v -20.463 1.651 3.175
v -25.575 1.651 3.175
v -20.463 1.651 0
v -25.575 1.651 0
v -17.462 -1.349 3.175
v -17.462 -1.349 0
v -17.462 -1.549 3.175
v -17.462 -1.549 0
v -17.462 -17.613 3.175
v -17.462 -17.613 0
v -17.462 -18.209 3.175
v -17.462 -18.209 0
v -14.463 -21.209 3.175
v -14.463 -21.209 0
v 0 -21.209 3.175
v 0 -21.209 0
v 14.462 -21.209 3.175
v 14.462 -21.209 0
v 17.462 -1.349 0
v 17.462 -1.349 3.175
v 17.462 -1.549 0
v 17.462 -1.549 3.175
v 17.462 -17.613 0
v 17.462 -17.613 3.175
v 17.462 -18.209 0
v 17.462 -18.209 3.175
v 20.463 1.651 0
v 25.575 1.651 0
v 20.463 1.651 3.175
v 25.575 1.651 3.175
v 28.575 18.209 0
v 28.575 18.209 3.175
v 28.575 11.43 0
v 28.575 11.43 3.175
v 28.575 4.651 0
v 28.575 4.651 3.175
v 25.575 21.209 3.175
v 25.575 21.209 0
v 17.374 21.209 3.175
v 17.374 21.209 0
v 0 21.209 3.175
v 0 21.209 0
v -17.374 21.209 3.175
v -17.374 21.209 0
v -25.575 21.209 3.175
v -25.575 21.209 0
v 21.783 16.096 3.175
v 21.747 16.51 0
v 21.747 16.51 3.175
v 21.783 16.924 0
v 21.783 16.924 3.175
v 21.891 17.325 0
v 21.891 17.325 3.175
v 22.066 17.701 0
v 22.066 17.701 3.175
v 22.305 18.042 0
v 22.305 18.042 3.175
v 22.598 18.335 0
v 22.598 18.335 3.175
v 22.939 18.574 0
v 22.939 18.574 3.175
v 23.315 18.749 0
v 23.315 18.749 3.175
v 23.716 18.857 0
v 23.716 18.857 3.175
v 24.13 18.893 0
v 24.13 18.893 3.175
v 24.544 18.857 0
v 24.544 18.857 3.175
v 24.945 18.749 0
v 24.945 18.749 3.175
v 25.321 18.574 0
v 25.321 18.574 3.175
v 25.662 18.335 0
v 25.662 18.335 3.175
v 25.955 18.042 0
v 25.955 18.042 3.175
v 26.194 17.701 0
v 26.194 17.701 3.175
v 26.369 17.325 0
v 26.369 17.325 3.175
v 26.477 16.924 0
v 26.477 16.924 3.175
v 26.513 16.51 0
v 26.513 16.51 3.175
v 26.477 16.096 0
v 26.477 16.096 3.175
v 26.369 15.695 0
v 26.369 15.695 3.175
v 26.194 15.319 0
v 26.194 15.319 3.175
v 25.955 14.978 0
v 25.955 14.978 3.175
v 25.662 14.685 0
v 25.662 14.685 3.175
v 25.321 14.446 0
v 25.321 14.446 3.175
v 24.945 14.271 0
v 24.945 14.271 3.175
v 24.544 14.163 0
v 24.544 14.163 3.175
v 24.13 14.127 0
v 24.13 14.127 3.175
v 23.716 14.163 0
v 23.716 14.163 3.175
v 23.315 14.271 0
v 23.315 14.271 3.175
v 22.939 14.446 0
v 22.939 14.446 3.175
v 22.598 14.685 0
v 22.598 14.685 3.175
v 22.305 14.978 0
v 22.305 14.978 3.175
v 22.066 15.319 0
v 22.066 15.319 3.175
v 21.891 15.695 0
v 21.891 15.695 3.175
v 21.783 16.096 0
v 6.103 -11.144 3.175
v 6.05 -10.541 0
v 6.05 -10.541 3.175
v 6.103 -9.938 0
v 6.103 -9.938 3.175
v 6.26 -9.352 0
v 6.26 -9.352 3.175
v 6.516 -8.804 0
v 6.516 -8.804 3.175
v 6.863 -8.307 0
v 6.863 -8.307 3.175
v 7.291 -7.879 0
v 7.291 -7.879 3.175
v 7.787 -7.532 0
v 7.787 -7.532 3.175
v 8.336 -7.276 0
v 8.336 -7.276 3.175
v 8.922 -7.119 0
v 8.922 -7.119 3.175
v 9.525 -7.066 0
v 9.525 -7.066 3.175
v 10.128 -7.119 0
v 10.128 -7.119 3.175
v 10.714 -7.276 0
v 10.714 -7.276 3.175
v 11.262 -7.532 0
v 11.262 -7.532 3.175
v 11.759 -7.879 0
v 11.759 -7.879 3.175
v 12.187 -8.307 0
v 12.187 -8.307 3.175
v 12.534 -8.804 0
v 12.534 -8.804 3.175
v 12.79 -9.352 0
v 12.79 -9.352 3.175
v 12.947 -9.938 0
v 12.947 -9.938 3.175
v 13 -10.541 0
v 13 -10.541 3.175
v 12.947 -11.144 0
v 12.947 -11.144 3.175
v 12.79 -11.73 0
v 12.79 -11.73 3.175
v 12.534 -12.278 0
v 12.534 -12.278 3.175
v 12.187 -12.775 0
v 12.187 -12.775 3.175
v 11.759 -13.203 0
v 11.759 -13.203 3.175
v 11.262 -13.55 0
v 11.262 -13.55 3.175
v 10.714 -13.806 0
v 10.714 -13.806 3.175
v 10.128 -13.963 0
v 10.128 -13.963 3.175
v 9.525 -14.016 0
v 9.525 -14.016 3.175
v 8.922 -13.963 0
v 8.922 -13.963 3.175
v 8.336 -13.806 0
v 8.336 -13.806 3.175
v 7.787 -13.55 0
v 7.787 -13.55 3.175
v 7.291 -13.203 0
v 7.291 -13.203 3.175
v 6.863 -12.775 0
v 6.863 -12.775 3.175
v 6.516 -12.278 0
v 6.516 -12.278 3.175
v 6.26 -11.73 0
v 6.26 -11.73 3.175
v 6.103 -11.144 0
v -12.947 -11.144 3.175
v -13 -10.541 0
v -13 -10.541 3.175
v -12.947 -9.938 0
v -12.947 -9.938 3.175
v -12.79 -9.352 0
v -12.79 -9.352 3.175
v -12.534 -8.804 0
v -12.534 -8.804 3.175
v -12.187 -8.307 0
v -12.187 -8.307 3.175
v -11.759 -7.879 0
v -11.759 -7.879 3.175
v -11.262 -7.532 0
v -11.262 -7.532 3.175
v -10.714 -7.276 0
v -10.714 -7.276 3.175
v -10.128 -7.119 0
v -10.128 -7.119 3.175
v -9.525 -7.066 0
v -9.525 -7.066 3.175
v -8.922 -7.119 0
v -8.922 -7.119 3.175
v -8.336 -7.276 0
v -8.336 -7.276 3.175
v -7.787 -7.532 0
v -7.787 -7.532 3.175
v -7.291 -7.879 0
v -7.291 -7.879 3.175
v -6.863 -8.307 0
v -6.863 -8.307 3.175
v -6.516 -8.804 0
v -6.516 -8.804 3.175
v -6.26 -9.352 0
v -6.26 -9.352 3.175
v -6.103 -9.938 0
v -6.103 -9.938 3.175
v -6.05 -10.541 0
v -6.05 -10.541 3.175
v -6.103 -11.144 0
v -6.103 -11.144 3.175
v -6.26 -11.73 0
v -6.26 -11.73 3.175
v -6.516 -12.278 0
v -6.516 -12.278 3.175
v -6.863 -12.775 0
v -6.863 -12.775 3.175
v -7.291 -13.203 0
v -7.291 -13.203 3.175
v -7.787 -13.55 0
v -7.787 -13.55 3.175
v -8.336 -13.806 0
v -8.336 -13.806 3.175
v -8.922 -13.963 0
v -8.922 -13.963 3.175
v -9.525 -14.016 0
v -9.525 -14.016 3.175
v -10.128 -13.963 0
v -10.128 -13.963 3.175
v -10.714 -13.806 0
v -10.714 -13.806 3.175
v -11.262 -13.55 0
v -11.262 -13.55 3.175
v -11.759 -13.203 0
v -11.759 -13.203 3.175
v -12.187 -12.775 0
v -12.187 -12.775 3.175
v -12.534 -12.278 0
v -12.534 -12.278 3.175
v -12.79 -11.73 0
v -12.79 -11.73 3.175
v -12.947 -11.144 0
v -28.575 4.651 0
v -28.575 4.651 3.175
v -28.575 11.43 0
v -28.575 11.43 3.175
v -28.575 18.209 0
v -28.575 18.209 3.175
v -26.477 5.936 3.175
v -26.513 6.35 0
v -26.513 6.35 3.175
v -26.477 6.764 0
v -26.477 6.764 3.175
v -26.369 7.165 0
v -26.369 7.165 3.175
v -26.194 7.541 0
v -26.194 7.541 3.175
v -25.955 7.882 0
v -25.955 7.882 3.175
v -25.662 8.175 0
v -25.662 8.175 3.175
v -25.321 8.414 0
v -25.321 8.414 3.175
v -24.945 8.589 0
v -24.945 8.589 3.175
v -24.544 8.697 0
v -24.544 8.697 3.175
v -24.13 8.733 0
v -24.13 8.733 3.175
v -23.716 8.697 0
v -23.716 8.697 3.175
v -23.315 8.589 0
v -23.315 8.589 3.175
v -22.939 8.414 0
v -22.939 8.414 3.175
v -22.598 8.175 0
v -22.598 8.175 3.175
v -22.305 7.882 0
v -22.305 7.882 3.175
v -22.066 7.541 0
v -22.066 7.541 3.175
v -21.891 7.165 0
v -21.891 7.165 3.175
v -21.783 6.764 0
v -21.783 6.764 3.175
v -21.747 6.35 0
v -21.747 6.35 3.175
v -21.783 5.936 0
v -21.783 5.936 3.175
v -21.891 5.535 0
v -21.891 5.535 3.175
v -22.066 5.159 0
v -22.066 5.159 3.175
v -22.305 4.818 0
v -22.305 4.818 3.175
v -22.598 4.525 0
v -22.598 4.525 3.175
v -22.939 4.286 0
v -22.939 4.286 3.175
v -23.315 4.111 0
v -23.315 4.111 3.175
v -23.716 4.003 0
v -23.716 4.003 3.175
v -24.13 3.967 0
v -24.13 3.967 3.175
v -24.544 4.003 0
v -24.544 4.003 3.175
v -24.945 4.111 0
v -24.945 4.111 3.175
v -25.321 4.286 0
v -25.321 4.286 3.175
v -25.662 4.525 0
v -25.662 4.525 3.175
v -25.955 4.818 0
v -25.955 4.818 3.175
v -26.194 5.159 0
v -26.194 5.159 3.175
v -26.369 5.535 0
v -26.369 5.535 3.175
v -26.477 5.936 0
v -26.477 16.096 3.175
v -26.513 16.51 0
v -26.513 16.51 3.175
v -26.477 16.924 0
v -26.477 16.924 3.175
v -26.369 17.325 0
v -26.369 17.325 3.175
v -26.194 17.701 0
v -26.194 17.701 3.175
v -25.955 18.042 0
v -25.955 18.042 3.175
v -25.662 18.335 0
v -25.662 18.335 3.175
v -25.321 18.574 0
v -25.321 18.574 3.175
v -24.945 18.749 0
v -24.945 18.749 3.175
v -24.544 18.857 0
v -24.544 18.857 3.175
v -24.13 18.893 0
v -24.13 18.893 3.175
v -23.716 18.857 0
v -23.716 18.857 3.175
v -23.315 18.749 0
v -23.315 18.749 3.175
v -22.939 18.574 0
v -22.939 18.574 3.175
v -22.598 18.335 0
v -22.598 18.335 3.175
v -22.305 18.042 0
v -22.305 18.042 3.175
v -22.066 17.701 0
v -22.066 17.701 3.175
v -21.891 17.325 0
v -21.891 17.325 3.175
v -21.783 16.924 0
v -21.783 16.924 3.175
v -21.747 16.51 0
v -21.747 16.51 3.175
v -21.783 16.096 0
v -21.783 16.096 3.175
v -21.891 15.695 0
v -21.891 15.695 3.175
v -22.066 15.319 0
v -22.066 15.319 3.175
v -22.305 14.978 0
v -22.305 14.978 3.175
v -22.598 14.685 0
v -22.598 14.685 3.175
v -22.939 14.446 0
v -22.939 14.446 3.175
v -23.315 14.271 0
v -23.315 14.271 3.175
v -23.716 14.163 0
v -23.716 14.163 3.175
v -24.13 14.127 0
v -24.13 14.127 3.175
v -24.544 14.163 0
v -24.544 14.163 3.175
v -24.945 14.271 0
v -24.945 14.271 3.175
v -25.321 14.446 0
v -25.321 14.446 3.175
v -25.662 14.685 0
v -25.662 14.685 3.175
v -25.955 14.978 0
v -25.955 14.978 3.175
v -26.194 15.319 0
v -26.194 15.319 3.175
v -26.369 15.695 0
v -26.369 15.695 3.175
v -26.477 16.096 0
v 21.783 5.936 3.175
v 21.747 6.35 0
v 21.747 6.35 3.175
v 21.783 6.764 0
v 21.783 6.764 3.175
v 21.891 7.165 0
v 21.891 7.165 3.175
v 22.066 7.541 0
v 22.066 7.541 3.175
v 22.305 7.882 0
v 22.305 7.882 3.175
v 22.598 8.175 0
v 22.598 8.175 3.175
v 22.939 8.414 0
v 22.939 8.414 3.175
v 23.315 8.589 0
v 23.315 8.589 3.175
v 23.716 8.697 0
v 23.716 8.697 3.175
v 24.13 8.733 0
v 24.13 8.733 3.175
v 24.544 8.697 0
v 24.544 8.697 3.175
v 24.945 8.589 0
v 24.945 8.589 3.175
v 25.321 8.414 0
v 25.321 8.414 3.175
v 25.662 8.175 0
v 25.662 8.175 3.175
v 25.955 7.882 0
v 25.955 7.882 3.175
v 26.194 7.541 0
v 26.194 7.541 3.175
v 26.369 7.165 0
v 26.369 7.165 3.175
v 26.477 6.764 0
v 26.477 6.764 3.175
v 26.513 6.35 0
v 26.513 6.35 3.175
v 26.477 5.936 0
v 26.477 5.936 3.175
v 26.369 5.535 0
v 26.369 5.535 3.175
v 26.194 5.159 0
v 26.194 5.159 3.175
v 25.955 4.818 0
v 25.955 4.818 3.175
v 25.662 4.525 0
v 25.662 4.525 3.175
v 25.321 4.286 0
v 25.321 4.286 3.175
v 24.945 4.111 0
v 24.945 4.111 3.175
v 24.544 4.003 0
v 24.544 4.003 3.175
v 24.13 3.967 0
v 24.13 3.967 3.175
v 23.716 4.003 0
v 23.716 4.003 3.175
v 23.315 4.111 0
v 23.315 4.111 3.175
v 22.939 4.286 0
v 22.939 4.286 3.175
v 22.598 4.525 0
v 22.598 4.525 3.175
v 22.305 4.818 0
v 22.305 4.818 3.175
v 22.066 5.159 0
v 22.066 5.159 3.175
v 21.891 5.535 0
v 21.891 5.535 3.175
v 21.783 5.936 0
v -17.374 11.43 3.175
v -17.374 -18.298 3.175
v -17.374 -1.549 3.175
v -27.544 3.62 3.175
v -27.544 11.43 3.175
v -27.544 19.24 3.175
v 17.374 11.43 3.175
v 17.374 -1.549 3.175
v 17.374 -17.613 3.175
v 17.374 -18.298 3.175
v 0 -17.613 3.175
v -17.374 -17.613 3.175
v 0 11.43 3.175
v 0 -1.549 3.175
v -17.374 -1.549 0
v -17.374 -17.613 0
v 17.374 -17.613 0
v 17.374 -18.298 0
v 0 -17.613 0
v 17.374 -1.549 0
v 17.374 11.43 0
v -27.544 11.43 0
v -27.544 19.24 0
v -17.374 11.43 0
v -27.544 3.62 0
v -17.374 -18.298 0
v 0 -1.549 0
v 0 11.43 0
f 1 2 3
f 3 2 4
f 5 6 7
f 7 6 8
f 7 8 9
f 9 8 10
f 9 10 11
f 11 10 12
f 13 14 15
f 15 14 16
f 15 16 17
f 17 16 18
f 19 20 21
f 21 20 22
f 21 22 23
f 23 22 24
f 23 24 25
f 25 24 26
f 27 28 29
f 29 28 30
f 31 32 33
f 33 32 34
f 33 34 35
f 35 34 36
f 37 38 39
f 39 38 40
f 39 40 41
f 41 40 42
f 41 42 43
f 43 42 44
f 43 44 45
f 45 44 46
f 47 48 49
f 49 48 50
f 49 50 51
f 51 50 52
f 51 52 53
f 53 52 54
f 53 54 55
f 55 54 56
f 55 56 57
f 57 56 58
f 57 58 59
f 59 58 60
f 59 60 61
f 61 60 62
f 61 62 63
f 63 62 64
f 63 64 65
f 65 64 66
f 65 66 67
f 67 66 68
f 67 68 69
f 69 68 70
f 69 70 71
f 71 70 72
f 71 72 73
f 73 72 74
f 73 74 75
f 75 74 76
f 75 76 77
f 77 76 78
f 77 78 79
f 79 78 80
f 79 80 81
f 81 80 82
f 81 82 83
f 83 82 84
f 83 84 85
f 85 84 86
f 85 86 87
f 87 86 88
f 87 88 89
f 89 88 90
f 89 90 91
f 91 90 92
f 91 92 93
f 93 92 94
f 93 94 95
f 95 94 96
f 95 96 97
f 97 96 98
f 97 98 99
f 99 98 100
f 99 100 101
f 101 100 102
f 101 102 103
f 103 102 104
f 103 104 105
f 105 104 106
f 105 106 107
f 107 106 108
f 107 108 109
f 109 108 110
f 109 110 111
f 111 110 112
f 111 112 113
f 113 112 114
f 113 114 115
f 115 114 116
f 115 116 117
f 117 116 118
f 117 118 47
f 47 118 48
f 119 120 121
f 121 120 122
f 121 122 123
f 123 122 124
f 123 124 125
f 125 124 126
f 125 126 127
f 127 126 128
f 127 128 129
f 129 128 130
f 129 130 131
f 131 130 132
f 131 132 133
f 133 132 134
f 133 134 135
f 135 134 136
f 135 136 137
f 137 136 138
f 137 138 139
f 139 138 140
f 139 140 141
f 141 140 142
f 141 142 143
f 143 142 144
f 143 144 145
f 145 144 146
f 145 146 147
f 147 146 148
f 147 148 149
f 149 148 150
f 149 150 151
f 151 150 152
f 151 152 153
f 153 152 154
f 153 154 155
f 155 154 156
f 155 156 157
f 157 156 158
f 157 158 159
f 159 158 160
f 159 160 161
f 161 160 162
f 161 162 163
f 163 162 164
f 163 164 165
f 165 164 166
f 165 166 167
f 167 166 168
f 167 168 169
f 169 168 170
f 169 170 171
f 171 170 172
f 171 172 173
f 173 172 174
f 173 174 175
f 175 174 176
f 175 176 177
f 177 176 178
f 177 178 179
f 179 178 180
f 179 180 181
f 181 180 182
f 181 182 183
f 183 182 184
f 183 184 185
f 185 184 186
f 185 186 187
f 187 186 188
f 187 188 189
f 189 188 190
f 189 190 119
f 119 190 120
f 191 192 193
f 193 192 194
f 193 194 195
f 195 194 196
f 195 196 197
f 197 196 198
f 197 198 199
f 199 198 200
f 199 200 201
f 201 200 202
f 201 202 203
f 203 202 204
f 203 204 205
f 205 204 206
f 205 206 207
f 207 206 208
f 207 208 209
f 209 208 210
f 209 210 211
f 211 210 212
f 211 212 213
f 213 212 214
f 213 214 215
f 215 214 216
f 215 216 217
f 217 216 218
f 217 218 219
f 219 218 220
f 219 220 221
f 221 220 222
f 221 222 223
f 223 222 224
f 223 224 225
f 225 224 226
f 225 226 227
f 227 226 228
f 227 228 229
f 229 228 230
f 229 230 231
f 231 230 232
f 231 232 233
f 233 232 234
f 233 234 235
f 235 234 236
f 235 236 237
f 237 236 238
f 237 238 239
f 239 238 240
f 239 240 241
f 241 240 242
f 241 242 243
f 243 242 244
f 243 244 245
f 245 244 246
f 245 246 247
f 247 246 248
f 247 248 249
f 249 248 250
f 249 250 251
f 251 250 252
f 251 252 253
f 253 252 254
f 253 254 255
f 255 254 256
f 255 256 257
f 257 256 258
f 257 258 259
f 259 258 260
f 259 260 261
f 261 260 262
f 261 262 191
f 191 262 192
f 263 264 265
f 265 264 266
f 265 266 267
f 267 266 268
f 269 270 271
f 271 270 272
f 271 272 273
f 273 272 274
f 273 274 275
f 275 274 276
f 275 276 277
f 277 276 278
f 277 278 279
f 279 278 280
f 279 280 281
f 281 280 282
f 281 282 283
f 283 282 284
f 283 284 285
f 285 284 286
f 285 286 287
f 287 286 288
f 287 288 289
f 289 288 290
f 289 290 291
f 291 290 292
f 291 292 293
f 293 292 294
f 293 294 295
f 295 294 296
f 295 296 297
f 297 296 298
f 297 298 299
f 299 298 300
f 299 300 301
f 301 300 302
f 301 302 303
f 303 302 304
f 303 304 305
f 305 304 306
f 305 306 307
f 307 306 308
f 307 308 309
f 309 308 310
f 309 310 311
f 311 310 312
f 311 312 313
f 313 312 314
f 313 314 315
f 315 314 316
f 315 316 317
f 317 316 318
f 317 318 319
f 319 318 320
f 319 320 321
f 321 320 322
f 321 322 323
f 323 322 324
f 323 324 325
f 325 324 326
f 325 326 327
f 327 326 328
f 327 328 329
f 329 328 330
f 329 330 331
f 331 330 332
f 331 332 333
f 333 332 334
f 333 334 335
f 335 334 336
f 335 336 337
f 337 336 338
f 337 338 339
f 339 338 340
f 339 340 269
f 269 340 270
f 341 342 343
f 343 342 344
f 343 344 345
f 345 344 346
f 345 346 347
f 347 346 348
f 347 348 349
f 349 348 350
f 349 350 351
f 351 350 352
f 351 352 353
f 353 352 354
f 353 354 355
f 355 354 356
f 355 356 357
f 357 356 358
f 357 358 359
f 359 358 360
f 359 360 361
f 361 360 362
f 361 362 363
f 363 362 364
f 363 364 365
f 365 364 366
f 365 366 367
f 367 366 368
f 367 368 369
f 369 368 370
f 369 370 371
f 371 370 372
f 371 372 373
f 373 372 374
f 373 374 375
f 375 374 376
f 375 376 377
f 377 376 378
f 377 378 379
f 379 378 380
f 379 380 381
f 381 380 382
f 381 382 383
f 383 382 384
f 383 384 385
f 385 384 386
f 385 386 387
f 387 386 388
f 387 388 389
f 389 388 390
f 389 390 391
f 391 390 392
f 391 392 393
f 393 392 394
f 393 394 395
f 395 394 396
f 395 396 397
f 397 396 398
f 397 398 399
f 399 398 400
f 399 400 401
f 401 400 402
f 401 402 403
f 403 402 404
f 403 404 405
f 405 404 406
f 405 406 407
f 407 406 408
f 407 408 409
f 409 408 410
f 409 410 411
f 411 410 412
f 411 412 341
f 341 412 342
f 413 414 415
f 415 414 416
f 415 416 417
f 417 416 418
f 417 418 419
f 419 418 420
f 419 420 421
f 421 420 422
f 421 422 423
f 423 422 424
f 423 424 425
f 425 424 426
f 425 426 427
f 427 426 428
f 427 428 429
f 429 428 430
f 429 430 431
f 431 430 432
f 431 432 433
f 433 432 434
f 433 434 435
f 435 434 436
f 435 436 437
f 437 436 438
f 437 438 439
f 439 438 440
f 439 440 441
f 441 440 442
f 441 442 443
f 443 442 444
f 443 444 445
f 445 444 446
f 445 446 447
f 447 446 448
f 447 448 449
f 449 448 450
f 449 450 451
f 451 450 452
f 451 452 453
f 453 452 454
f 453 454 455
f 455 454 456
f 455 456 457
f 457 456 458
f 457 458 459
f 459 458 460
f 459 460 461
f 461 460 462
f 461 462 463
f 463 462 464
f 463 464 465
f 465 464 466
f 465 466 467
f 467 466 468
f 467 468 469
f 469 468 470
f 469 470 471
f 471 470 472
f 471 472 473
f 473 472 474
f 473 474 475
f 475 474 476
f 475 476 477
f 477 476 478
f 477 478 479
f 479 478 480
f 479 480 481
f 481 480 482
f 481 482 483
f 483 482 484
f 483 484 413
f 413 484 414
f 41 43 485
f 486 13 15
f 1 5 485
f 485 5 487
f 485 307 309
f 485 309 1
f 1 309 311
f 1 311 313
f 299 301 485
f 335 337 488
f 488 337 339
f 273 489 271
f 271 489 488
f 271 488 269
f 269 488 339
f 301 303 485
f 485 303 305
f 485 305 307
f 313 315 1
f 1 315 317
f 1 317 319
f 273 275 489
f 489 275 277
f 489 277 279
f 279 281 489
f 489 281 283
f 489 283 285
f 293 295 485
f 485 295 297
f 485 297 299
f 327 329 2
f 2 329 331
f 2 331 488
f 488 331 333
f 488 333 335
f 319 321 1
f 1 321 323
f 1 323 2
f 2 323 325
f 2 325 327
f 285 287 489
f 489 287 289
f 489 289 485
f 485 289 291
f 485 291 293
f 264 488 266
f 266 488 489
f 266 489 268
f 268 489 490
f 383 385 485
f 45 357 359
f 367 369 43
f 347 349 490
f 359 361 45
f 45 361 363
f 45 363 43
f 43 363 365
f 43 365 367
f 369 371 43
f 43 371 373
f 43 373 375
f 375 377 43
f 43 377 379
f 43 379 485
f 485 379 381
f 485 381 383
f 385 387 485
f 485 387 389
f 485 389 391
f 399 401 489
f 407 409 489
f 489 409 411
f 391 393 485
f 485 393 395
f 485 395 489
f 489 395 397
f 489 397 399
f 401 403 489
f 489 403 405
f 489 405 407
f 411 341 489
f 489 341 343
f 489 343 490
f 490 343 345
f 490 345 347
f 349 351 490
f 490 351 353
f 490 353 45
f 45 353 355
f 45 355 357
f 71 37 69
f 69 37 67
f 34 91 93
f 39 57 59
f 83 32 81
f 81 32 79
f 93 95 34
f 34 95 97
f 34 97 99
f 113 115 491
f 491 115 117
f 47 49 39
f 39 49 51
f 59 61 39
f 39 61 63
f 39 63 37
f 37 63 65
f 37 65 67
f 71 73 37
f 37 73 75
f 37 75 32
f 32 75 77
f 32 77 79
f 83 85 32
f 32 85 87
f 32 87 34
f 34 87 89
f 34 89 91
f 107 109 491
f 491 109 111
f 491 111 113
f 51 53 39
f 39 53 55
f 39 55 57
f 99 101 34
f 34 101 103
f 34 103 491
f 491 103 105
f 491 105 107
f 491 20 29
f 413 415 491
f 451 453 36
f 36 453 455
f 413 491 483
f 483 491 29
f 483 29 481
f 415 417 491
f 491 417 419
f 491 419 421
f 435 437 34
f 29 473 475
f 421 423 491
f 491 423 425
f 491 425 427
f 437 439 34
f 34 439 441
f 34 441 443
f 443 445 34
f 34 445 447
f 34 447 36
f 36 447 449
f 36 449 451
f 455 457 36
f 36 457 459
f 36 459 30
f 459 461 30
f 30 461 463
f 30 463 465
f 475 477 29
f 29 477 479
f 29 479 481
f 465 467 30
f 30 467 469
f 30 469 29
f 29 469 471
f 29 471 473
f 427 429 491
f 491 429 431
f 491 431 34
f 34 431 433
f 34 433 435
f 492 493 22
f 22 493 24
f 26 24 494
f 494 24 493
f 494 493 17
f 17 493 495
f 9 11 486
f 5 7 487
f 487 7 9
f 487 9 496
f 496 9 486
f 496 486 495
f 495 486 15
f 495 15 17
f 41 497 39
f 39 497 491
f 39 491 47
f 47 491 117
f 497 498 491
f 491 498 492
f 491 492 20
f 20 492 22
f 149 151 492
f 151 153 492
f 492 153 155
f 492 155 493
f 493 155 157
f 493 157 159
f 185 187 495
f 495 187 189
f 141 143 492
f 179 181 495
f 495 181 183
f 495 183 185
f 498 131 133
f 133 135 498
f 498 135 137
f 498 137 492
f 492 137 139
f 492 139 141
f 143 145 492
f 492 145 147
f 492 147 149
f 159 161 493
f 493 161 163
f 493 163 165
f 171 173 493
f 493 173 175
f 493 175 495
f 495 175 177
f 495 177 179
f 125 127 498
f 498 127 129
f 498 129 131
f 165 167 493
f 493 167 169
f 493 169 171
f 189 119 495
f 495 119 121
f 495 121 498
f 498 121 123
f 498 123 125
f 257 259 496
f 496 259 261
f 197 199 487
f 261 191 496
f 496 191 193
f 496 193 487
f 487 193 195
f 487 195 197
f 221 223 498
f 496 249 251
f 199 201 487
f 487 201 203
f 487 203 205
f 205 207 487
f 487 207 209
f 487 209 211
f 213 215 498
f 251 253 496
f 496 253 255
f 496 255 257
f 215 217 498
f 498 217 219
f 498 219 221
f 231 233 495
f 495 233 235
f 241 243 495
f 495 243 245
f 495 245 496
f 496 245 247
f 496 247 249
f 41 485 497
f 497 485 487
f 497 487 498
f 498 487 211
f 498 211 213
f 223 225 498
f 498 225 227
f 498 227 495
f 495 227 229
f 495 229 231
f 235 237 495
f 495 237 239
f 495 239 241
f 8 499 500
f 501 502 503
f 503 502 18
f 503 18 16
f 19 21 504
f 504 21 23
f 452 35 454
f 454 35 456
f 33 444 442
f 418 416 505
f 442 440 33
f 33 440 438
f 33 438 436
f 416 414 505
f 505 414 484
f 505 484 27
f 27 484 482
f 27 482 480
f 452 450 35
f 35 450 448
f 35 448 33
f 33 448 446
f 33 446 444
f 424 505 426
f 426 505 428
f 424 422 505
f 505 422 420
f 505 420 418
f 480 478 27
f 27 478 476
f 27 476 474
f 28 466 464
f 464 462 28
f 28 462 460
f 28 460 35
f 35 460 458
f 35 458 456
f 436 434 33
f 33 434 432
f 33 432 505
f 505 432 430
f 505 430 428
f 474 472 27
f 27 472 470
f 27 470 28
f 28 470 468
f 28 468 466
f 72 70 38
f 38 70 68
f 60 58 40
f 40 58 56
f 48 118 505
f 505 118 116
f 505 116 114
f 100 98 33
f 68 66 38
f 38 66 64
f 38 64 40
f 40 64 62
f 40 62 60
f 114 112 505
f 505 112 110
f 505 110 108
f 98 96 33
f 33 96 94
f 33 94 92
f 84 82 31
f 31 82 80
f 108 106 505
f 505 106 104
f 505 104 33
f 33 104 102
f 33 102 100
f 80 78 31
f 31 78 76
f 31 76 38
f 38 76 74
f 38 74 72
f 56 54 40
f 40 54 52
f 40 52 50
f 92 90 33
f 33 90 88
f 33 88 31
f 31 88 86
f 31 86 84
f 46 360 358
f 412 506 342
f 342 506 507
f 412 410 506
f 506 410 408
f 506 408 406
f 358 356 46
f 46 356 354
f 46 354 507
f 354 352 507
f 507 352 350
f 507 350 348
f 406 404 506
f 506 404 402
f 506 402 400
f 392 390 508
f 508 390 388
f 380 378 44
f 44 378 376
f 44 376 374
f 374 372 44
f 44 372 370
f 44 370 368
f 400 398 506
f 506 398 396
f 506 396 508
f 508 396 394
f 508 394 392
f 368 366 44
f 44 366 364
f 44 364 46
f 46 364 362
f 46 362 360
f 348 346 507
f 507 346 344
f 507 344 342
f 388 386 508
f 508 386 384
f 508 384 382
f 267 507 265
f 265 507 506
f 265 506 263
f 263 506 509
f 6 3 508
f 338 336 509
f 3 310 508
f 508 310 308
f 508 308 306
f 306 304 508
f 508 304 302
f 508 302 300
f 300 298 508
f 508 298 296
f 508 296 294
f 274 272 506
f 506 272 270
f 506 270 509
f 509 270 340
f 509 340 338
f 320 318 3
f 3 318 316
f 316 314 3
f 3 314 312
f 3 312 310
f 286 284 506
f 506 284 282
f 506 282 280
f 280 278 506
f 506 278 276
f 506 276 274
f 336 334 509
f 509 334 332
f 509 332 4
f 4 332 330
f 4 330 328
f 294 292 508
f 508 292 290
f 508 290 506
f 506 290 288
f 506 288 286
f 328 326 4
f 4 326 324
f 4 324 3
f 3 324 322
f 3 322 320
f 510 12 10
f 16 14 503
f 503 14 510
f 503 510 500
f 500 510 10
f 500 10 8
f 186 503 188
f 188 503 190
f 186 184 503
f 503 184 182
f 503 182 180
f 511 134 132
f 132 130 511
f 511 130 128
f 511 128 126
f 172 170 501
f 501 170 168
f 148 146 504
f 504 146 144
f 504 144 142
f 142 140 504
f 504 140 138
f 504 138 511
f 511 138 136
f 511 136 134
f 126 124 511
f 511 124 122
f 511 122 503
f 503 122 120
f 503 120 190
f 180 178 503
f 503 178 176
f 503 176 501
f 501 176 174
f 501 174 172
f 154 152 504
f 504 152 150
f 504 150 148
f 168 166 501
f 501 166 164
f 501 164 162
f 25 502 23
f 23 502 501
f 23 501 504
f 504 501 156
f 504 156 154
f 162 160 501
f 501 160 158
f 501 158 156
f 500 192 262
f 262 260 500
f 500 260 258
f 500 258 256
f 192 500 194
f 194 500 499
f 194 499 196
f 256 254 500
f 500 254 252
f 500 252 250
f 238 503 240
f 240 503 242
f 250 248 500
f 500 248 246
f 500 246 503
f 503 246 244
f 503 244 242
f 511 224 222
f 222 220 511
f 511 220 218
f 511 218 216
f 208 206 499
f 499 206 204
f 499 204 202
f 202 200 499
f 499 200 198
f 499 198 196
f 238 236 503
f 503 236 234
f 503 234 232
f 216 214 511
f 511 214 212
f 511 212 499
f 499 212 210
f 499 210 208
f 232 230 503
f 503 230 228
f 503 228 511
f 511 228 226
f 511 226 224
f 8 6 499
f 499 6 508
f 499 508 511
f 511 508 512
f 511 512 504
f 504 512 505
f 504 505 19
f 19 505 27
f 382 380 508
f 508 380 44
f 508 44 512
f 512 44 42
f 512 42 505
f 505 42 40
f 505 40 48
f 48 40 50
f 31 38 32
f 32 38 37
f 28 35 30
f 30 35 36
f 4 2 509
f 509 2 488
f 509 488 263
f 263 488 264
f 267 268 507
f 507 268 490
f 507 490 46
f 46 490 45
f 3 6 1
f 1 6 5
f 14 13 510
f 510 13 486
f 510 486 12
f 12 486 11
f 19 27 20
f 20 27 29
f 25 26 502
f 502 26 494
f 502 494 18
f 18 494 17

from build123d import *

# Parameters (mm, degrees)
SKETCH1_R           = 3.475
SKETCH1_R_2         = 2.3828
BOSS_EXTRUDE1_DEPTH = 3.175
CHAMFER1_SIZE       = 3
CHAMFER2_SIZE       = 3


with BuildPart() as part:
    # Sketch1 → Boss-Extrude1 (new body)
    with BuildSketch(Plane.XY):
        Polygon((17.4625, -21.209), (-17.4625, -21.209), (-17.4625, 1.651), (-28.575, 1.651), (-28.575, 21.209), (28.575, 21.209), (28.575, 1.651), (17.4625, 1.651), align=None)
        with Locations((-9.525, -10.541)):
            Circle(SKETCH1_R, mode=Mode.SUBTRACT)
        with Locations((9.525, -10.541)):
            Circle(SKETCH1_R, mode=Mode.SUBTRACT)
        with Locations((-24.13, 6.35)):
            Circle(SKETCH1_R_2, mode=Mode.SUBTRACT)
        with Locations((-24.13, 16.51)):
            Circle(SKETCH1_R_2, mode=Mode.SUBTRACT)
        with Locations((24.13, 16.51)):
            Circle(SKETCH1_R_2, mode=Mode.SUBTRACT)
        with Locations((24.13, 6.35)):
            Circle(SKETCH1_R_2, mode=Mode.SUBTRACT)
    extrude(amount=BOSS_EXTRUDE1_DEPTH)

    # Chamfer1
    chamfer1_edges = [part.edges().sort_by_distance(p)[0] for p in [
        (-28.575, 1.651, 1.5875),
        (-28.575, 21.209, 1.5875),
        (28.575, 21.209, 1.5875),
        (28.575, 1.651, 1.5875),
    ]]
    chamfer(chamfer1_edges, length=CHAMFER1_SIZE)

    # Chamfer2
    chamfer2_edges = [part.edges().sort_by_distance(p)[0] for p in [
        (17.4625, 1.651, 1.5875),
        (17.4625, -21.209, 1.5875),
        (-17.4625, -21.209, 1.5875),
        (-17.4625, 1.651, 1.5875),
    ]]
    chamfer(chamfer2_edges, length=CHAMFER2_SIZE)


solid = part.part
